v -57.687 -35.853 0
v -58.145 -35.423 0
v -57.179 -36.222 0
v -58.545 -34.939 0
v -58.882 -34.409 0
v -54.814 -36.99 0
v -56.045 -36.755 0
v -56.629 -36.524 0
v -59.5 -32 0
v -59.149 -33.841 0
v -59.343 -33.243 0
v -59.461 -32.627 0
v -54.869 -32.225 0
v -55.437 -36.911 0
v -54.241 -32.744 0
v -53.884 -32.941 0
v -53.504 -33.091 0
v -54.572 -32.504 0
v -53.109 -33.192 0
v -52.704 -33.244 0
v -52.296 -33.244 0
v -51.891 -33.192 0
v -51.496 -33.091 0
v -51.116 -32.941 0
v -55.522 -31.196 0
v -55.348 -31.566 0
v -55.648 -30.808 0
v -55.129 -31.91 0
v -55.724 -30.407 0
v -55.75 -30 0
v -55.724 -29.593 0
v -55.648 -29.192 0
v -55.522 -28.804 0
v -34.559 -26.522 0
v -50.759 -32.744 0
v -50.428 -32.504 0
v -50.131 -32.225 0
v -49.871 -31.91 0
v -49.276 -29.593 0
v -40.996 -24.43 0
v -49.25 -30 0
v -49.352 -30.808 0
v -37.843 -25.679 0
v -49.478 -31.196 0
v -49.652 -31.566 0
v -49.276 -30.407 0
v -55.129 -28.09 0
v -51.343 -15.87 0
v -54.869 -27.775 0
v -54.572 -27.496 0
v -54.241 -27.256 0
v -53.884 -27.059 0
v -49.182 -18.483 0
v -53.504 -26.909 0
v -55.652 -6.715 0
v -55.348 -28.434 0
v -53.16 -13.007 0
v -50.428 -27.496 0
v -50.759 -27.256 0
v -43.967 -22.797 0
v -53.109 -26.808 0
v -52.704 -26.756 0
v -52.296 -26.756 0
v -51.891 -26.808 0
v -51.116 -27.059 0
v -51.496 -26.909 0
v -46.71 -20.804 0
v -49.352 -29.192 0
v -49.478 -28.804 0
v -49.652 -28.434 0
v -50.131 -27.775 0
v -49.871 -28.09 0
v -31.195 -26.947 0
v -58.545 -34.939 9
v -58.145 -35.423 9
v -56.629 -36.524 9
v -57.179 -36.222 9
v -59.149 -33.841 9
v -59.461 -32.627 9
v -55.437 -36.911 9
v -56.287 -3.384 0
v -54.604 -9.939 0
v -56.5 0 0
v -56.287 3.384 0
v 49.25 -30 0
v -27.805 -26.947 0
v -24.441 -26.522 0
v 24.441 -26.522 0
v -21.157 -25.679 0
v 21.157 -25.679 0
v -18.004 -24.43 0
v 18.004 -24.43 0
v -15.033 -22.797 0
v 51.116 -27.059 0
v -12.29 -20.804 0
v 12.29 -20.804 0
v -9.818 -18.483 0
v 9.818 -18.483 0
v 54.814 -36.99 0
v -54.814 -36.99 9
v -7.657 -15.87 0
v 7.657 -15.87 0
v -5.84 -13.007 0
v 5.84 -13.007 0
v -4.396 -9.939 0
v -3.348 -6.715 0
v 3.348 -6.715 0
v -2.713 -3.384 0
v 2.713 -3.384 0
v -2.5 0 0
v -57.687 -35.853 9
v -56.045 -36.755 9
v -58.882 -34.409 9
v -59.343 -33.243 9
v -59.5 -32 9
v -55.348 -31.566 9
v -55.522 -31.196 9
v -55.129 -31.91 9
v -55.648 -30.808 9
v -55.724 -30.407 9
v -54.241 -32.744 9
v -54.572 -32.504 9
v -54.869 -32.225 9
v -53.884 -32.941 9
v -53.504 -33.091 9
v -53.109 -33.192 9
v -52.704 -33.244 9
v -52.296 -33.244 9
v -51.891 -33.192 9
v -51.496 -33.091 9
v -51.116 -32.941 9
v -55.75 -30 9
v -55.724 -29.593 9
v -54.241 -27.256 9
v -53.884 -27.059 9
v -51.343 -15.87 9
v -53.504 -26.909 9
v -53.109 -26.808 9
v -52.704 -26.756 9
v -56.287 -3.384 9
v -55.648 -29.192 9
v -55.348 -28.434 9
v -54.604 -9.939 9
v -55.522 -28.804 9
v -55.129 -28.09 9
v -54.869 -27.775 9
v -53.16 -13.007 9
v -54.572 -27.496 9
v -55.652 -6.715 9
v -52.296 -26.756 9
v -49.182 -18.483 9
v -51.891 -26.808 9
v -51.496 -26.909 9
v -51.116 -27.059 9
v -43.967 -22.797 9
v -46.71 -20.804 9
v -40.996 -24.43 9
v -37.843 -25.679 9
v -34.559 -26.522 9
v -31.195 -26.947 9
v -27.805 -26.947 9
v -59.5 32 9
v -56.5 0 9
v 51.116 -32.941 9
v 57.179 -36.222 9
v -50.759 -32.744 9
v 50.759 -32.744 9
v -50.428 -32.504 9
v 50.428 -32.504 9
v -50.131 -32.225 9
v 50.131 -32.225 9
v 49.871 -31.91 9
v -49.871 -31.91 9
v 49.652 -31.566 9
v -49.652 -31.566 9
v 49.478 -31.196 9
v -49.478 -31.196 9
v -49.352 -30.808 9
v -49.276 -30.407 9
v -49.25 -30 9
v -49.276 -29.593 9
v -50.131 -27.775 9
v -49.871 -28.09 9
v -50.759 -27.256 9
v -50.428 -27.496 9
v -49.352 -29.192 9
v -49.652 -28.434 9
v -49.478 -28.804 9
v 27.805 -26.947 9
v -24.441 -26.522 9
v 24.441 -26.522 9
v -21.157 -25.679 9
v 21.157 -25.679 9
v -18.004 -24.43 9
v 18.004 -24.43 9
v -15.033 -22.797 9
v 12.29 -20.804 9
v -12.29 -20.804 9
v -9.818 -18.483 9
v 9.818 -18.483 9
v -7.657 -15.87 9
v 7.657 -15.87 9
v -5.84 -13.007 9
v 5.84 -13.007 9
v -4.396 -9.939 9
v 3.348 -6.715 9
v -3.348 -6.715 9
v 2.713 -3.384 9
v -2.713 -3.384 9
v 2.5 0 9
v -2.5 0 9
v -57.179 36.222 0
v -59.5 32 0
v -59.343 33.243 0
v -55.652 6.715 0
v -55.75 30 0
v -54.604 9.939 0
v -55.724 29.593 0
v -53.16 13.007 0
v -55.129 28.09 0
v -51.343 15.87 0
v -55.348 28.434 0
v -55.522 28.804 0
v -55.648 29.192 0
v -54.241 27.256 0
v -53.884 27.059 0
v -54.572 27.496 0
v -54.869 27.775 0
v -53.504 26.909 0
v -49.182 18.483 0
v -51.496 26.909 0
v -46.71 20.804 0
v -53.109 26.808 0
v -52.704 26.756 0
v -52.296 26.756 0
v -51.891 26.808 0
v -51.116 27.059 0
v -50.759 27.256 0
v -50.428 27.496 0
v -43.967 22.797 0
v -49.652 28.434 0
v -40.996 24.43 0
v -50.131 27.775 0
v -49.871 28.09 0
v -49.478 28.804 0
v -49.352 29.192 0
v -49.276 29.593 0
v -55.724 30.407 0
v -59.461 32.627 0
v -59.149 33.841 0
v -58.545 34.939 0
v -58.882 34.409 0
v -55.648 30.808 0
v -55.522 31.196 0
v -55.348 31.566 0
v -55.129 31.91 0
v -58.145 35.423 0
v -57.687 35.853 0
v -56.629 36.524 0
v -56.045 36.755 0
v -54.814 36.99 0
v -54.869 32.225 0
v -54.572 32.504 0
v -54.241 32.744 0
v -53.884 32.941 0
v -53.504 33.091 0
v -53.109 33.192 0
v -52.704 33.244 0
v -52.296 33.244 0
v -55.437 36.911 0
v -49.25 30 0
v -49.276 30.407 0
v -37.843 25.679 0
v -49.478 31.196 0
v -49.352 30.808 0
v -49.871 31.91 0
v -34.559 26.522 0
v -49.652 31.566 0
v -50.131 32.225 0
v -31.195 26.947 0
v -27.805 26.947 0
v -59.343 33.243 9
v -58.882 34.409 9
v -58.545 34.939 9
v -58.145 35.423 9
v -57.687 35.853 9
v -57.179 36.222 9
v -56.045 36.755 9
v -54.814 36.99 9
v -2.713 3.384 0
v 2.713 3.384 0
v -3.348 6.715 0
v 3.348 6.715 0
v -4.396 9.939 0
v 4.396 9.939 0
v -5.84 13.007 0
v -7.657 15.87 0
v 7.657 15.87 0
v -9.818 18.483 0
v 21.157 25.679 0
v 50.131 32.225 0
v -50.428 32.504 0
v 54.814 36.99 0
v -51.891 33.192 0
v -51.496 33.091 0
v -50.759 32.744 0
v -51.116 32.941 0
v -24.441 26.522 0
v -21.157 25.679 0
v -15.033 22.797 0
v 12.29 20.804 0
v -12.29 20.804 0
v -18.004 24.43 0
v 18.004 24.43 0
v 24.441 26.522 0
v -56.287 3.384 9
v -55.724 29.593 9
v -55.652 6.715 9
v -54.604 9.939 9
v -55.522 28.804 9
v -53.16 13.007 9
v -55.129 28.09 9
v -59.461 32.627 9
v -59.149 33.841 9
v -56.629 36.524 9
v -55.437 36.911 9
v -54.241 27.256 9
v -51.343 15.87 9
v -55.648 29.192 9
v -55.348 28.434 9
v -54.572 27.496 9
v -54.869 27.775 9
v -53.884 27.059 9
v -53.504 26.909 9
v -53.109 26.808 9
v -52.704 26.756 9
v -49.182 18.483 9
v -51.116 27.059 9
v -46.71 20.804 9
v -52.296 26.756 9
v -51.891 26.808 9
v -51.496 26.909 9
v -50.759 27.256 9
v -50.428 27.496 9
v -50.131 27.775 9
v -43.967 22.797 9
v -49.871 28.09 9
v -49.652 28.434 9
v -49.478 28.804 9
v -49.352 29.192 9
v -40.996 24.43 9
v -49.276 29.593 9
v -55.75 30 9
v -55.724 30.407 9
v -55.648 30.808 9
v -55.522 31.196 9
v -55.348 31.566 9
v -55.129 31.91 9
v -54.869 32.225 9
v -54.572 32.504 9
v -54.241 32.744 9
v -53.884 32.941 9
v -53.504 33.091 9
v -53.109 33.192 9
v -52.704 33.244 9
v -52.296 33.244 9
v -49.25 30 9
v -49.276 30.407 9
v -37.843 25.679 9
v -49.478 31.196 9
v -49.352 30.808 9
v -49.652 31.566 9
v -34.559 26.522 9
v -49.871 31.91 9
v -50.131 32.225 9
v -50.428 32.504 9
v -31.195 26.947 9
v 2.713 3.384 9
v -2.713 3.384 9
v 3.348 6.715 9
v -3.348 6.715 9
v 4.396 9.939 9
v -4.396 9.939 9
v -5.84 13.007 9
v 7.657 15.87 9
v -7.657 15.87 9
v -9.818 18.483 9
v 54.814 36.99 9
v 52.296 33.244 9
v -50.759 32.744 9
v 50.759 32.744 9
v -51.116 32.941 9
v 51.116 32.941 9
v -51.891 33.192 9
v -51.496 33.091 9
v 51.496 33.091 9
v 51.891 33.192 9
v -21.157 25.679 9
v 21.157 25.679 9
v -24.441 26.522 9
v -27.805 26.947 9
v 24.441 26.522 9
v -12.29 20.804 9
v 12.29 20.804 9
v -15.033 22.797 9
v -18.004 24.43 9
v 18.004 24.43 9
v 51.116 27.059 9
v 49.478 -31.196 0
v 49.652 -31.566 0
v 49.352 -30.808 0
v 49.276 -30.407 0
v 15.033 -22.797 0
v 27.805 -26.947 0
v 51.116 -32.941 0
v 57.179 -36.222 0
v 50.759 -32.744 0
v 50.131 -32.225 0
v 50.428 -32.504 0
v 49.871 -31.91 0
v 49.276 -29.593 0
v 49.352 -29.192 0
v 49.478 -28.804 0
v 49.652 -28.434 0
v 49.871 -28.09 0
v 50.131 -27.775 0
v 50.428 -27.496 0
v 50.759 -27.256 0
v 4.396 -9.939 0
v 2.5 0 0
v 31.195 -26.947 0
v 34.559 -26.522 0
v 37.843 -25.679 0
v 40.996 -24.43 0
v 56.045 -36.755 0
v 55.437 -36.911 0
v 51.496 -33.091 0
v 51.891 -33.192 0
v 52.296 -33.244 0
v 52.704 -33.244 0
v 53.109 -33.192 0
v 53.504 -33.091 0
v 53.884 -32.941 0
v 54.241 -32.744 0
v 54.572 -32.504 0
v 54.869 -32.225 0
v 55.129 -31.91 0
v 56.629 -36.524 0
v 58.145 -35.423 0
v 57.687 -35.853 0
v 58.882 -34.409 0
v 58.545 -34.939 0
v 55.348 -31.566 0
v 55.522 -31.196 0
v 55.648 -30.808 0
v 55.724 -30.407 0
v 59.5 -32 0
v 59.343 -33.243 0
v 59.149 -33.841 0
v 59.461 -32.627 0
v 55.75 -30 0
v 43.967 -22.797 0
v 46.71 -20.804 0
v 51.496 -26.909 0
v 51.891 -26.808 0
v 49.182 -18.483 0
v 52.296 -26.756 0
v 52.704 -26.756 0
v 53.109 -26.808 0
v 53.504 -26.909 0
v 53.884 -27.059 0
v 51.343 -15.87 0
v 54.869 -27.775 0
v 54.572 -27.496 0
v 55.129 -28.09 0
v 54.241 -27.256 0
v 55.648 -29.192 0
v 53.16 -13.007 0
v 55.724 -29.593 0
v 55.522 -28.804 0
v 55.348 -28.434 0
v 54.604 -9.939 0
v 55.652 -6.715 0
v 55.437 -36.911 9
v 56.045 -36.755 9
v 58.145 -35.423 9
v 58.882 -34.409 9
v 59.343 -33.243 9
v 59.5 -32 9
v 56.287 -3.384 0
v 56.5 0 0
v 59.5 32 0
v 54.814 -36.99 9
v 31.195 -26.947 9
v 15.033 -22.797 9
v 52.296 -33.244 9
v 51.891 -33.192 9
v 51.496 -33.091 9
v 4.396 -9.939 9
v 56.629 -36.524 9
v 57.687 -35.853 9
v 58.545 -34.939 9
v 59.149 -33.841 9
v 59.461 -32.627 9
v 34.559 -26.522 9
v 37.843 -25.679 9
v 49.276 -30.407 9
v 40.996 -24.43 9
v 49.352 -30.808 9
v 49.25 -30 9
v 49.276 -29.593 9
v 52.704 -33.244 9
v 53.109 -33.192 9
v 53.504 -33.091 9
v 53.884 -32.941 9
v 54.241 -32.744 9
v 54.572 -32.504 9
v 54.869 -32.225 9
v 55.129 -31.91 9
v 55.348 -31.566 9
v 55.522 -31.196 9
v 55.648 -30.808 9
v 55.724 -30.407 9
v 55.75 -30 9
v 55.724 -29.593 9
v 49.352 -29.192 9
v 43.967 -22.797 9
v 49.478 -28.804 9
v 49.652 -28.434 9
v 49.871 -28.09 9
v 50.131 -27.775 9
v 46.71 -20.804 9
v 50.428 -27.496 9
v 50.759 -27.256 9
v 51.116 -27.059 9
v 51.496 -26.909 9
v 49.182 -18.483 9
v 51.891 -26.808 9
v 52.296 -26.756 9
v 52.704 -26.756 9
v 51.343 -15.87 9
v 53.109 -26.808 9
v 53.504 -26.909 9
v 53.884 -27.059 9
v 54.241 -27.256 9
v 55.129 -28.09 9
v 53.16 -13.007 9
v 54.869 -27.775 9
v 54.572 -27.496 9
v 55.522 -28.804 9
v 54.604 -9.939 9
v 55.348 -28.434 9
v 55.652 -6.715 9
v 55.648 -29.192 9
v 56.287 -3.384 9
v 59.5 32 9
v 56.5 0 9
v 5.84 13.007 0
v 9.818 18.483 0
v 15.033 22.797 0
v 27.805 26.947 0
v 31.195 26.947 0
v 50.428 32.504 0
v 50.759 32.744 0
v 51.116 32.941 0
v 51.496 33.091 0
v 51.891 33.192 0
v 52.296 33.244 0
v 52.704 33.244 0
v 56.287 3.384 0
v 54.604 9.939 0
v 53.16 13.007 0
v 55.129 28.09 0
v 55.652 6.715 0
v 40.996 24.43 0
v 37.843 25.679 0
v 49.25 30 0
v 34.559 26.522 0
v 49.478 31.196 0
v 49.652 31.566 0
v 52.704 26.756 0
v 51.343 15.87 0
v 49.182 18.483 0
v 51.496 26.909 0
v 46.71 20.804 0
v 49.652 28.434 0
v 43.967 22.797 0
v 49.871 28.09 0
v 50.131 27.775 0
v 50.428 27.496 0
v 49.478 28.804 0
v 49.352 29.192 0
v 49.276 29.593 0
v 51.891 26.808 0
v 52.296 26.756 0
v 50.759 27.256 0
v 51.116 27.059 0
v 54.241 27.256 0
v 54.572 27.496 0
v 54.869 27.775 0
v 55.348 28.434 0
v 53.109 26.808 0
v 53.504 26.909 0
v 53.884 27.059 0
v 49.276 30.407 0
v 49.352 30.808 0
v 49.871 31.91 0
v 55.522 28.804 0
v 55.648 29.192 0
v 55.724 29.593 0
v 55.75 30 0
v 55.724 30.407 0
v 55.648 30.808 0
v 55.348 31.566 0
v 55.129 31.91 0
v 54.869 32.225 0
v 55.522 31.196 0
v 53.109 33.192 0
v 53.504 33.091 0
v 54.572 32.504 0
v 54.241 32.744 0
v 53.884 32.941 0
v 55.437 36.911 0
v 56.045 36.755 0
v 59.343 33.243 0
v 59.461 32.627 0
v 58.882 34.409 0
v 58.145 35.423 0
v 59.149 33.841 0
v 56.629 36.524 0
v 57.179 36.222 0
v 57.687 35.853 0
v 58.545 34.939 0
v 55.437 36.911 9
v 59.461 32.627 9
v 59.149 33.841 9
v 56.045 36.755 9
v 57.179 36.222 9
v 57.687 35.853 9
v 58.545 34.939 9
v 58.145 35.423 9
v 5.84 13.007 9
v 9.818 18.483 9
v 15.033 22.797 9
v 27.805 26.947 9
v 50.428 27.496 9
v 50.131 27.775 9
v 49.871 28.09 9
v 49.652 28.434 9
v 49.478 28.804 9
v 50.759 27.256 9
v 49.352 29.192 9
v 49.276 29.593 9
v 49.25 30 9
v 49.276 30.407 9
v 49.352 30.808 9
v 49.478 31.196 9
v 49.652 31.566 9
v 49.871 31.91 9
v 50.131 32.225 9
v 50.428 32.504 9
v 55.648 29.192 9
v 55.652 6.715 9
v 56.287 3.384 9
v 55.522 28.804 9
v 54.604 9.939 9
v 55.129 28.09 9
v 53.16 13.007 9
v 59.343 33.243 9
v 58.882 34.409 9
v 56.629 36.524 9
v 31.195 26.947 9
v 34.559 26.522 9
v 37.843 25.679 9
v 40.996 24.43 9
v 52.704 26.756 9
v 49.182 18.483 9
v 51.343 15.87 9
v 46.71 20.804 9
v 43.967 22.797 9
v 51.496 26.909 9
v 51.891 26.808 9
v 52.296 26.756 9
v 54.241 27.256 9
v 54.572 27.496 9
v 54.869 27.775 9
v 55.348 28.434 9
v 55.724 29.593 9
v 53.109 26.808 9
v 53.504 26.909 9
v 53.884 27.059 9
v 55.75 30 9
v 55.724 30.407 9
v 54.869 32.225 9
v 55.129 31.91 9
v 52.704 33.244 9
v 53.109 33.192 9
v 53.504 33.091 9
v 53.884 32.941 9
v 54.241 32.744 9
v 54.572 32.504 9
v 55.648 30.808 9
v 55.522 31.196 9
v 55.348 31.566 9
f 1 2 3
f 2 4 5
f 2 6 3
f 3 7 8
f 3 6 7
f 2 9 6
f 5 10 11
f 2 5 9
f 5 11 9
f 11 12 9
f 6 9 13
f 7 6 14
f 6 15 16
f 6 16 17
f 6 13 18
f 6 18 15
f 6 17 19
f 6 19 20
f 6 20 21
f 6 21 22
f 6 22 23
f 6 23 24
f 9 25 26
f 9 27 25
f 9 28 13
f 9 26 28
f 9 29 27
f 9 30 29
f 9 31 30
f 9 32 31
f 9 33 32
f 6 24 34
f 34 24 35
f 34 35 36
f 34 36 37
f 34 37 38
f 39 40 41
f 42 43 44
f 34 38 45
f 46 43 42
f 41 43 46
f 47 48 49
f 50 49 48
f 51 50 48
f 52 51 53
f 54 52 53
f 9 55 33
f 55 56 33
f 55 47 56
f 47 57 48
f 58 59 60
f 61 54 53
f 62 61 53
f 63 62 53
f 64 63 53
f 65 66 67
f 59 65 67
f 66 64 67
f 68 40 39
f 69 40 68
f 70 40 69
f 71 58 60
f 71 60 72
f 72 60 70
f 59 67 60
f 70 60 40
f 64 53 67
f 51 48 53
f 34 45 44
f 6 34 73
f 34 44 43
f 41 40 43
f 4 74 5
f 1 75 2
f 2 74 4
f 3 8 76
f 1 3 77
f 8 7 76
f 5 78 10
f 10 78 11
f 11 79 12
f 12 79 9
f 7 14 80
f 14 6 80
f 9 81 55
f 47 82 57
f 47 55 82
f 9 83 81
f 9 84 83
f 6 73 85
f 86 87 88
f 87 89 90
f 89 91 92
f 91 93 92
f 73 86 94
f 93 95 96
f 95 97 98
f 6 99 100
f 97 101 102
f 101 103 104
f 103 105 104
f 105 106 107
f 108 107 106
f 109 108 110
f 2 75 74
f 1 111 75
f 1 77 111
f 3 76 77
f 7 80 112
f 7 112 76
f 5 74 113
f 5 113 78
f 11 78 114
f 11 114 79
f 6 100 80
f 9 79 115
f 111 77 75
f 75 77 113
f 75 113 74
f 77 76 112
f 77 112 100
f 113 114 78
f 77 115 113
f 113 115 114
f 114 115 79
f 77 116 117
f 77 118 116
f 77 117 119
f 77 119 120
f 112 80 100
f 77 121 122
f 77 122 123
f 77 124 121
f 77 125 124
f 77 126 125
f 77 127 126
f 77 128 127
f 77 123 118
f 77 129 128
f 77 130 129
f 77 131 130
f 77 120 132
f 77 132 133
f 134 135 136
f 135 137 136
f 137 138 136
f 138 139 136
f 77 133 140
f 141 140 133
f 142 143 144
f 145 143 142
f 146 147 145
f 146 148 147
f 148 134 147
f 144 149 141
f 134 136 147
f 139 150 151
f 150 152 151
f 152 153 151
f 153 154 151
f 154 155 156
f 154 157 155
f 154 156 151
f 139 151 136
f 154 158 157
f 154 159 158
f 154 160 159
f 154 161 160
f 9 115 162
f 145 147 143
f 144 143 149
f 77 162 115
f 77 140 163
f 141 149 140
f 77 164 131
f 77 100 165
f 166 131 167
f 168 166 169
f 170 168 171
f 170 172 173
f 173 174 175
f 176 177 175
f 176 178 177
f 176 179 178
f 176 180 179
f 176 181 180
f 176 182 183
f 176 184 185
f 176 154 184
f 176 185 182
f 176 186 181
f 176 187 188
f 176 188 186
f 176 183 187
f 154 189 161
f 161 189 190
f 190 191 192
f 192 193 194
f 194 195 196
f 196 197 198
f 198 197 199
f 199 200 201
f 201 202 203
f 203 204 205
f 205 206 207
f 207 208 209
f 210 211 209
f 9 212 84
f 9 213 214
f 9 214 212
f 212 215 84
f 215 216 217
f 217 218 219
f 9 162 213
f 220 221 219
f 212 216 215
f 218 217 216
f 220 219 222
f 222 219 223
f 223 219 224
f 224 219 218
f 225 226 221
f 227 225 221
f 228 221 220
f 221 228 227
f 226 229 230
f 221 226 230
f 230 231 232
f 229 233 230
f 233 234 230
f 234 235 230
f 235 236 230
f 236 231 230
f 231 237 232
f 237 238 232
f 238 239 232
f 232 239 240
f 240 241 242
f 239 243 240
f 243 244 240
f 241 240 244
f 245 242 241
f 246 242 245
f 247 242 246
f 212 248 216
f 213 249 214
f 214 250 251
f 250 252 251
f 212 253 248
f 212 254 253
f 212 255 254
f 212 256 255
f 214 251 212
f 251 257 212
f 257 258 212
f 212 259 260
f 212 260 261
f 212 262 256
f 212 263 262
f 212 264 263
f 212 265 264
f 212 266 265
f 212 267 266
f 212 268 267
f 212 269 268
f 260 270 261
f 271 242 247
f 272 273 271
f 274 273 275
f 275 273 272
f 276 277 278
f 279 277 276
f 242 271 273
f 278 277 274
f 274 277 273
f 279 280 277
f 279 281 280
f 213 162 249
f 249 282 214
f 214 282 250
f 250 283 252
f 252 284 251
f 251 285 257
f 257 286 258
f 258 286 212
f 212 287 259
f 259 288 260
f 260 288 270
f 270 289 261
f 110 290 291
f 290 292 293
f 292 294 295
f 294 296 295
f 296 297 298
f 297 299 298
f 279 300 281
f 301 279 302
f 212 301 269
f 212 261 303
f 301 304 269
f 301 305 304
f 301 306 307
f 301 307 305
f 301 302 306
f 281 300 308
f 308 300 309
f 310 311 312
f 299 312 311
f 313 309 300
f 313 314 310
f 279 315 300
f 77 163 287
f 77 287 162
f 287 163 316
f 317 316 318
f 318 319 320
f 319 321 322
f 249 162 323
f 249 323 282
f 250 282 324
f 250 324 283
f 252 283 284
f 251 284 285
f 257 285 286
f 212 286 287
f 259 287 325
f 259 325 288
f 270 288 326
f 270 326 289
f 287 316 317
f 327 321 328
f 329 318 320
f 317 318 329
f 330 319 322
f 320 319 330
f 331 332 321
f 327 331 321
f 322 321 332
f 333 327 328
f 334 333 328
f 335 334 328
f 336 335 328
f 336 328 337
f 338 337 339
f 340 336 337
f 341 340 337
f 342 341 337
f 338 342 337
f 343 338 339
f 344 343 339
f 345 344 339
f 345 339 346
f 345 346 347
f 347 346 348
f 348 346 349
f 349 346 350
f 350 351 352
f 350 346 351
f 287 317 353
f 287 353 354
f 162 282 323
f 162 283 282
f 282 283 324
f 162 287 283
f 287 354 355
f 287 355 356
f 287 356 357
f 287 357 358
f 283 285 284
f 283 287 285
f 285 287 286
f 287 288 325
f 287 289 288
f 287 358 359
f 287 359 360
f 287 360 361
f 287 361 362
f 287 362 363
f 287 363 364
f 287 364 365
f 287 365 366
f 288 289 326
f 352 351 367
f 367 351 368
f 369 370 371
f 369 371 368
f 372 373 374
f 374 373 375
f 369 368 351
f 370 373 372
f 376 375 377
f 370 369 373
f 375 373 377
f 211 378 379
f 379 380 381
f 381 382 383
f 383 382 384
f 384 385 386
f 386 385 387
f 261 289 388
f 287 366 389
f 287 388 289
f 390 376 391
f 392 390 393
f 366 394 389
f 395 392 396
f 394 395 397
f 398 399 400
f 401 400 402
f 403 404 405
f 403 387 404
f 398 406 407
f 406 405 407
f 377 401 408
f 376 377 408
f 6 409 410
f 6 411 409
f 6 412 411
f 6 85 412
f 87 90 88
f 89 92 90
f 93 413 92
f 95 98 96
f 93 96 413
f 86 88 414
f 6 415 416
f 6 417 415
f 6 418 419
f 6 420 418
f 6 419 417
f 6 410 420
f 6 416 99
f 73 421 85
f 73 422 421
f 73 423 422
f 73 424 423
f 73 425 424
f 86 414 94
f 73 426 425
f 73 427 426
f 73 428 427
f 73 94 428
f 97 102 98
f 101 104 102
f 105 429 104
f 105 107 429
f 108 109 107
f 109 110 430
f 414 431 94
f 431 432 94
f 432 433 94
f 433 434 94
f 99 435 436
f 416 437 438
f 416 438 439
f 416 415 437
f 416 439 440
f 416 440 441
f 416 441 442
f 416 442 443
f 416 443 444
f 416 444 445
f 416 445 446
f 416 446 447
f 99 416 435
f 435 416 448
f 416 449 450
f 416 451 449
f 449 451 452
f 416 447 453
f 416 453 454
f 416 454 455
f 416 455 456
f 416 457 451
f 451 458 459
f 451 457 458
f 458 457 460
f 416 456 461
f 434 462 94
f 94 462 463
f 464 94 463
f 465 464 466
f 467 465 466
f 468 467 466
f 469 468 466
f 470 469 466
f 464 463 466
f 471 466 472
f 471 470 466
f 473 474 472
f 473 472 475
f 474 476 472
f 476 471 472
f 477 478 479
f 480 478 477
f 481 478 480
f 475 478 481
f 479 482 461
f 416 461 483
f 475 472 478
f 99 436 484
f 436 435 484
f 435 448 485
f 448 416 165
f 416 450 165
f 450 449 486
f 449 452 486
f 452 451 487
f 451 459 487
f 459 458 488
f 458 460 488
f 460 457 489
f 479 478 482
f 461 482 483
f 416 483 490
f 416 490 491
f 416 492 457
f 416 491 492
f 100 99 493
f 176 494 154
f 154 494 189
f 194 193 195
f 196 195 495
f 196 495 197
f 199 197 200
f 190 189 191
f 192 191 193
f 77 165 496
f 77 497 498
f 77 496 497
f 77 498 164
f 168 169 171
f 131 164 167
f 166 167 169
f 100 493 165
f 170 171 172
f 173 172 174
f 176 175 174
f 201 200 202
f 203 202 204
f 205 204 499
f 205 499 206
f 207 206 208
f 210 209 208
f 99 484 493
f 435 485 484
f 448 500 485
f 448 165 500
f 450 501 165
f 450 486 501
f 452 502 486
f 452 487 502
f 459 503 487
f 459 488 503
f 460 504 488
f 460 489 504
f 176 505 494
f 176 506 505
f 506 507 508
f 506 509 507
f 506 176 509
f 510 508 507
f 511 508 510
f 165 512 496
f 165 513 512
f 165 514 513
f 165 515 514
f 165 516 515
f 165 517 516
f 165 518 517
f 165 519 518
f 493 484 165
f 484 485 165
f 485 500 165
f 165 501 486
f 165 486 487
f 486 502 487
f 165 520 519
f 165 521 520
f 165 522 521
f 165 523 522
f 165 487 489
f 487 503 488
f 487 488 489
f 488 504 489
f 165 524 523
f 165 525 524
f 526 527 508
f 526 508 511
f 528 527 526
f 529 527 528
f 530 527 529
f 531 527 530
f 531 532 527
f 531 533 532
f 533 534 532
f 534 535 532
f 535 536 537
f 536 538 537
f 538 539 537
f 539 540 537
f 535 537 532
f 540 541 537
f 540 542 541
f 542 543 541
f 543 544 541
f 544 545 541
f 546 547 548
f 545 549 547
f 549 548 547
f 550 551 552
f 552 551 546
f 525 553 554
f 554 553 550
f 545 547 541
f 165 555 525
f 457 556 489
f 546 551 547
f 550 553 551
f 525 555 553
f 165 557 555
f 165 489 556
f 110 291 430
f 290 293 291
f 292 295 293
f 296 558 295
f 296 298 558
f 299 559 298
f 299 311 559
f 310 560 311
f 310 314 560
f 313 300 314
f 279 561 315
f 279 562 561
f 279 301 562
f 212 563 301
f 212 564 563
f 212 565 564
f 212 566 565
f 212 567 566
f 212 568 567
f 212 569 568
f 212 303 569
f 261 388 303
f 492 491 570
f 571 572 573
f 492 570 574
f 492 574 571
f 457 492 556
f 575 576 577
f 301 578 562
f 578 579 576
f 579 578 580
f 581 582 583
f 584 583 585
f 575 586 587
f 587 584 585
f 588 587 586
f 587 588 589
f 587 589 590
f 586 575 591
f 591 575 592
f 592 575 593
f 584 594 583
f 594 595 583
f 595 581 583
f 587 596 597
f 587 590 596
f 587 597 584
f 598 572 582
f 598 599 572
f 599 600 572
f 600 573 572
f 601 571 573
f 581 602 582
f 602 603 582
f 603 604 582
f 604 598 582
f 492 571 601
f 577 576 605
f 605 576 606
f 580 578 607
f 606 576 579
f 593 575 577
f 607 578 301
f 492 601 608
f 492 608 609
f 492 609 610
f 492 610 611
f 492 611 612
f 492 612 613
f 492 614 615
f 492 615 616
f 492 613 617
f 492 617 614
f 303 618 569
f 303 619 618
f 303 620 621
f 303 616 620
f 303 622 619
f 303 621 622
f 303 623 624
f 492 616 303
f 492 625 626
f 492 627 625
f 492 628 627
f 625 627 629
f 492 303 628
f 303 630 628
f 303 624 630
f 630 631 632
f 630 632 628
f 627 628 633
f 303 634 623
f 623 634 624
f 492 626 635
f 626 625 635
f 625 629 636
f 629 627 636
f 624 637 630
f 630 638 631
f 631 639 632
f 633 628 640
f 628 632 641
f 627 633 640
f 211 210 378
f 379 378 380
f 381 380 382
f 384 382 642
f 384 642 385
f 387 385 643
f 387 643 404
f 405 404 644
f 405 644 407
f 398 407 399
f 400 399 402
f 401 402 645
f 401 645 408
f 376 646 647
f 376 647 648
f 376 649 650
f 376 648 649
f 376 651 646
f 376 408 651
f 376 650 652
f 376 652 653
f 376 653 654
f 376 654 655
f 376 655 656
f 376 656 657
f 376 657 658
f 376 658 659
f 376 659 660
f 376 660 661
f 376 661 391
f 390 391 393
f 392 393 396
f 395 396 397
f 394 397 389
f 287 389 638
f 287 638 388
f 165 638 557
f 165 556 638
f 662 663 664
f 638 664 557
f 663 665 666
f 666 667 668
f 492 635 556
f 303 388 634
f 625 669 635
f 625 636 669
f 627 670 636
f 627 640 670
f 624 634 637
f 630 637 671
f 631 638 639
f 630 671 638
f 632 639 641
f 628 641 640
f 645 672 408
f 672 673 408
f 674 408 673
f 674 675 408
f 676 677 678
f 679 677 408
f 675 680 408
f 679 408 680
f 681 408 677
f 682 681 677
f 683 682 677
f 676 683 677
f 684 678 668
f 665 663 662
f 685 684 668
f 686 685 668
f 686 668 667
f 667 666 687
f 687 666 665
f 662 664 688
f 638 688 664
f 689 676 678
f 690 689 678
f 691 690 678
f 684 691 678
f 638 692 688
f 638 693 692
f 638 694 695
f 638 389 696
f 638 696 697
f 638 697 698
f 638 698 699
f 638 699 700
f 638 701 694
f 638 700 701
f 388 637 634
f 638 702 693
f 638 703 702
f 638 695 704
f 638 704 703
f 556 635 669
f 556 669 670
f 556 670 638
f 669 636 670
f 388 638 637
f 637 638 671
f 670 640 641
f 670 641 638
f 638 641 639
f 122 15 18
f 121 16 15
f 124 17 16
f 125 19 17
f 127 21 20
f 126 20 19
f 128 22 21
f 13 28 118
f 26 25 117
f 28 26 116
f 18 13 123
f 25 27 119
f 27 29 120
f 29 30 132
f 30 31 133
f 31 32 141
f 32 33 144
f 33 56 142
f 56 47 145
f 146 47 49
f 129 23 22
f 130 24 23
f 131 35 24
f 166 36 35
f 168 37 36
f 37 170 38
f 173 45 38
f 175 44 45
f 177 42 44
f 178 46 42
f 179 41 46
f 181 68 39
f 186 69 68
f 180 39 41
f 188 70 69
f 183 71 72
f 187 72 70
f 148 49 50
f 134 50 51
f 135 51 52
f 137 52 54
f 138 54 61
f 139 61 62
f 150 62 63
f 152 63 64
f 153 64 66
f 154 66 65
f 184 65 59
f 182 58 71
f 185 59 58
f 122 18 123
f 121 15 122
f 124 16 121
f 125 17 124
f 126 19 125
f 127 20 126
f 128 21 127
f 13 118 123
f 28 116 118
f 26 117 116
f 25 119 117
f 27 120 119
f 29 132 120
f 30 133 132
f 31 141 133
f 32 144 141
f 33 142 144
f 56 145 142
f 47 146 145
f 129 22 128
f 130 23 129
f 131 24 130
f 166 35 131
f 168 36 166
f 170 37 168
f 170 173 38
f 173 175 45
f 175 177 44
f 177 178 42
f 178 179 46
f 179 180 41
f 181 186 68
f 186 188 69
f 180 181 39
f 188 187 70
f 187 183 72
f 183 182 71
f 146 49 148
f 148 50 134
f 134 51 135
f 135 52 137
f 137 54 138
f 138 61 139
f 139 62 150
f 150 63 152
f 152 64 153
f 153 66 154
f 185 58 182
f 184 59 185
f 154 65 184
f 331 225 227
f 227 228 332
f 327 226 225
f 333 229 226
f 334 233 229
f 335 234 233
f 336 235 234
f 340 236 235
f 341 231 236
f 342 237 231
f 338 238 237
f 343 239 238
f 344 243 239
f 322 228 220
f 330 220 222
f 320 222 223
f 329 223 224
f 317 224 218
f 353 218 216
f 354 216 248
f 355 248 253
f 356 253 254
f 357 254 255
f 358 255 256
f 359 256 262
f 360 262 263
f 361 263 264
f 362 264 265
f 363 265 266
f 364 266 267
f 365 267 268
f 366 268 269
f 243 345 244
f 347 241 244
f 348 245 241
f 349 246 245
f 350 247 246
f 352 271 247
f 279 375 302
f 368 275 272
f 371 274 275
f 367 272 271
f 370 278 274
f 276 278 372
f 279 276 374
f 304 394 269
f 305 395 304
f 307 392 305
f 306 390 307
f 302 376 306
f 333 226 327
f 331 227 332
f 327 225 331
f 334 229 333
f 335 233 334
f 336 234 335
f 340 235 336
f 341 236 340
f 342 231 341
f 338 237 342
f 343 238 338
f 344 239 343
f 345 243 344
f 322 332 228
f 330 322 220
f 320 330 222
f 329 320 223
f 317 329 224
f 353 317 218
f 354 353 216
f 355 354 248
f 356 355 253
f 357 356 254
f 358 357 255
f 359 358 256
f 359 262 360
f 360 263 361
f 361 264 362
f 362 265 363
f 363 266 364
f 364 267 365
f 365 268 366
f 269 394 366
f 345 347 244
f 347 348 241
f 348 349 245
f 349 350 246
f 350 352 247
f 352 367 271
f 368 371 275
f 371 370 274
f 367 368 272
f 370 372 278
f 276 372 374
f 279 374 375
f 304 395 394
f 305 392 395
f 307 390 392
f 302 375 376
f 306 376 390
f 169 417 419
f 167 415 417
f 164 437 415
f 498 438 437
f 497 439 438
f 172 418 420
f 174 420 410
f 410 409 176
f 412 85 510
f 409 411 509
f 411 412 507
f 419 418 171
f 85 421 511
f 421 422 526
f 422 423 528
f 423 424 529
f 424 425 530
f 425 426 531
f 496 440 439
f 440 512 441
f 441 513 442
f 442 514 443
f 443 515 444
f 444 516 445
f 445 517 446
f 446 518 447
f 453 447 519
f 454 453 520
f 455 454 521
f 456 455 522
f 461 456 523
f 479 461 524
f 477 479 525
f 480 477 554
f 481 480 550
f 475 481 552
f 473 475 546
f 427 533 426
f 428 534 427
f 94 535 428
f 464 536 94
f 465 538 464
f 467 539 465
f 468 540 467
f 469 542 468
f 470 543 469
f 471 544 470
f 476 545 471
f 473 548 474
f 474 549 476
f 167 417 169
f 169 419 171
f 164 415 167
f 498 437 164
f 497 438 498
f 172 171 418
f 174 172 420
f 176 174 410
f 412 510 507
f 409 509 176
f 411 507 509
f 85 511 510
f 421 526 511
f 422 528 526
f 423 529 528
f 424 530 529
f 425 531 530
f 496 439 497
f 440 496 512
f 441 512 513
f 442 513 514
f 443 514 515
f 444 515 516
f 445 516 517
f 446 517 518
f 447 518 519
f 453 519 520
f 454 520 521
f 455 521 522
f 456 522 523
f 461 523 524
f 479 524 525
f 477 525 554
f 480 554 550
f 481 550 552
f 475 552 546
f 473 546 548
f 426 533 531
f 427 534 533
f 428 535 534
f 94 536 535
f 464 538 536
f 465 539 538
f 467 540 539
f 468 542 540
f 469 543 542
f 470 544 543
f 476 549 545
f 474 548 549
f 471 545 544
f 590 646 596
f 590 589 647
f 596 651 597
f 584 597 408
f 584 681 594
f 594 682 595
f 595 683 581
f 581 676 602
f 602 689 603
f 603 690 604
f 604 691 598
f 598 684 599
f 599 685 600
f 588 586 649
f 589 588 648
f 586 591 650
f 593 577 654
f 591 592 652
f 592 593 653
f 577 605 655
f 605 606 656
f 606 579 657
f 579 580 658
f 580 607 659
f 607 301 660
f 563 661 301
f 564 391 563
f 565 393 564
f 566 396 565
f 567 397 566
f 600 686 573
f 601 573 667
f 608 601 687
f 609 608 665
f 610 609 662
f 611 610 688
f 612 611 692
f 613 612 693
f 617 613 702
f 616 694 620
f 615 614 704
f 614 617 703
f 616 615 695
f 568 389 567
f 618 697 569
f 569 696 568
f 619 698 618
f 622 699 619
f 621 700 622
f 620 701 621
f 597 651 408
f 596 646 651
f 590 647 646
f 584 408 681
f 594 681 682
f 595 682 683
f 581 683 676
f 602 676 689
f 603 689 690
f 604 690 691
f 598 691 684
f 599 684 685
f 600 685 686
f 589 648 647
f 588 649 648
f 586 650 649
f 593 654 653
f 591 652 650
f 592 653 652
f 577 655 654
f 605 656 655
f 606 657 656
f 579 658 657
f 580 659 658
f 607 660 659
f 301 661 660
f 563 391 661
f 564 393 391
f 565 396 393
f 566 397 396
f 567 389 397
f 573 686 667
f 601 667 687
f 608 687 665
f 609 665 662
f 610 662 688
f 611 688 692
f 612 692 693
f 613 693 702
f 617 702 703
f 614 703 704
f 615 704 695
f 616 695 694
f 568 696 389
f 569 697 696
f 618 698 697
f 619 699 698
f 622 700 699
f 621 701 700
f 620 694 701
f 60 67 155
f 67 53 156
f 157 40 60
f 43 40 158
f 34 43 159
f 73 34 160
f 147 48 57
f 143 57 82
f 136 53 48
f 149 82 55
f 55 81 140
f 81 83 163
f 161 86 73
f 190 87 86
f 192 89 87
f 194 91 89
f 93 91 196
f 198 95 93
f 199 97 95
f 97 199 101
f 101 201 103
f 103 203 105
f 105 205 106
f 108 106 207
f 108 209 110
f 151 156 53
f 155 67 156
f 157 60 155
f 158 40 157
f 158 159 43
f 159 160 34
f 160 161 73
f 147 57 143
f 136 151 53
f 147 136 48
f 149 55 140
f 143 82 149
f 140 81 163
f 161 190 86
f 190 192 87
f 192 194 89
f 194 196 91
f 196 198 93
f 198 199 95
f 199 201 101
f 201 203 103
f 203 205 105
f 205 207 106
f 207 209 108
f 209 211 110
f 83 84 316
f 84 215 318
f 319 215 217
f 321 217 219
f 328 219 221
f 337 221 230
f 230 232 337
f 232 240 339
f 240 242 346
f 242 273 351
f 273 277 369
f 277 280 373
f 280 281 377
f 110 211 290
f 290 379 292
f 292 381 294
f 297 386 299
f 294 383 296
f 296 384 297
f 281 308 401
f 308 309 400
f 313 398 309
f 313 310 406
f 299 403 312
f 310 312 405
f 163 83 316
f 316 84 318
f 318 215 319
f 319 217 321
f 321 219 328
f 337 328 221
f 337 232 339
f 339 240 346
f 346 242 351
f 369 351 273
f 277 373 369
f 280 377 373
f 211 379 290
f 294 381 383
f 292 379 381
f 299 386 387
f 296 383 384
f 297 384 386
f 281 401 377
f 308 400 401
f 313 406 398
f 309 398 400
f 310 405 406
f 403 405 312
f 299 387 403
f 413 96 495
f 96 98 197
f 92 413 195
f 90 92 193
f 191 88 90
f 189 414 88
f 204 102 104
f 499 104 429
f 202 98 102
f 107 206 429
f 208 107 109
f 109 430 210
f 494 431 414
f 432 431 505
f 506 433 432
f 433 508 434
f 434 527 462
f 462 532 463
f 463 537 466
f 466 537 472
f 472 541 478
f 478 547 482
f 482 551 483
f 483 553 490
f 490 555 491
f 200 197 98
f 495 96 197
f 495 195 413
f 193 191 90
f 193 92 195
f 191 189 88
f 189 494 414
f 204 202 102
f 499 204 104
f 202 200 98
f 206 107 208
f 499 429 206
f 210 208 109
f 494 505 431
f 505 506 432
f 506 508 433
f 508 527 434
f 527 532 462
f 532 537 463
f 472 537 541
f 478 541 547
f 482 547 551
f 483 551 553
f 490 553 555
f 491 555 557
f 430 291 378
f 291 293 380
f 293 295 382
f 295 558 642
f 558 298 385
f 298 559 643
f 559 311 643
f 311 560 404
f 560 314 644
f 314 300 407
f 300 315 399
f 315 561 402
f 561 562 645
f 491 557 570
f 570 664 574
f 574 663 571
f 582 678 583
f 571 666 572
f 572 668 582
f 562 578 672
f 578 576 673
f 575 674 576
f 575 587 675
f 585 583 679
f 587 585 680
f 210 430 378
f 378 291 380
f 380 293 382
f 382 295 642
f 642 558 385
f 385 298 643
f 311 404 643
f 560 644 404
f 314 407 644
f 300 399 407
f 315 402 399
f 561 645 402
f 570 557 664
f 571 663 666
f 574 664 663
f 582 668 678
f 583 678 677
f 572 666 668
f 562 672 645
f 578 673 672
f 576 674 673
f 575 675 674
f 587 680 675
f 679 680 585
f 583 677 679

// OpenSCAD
$fn = 50;

difference() {
	union() {
		hull() {
			translate(v = [-54.5, 32.0, 0]) {
				cylinder(h = 9, r = 5);
			}
			translate(v = [54.5, 32.0, 0]) {
				cylinder(h = 9, r = 5);
			}
			translate(v = [-54.5, -32.0, 0]) {
				cylinder(h = 9, r = 5);
			}
			translate(v = [54.5, -32.0, 0]) {
				cylinder(h = 9, r = 5);
			}
		}
	}
	union() {
		translate(v = [-52.5, -30.0, -100.0]) {
			cylinder(h = 200, r = 3.25);
		}
		translate(v = [-52.5, 30.0, -100.0]) {
			cylinder(h = 200, r = 3.25);
		}
		translate(v = [52.5, -30.0, -100.0]) {
			cylinder(h = 200, r = 3.25);
		}
		translate(v = [52.5, 30.0, -100.0]) {
			cylinder(h = 200, r = 3.25);
		}
		translate(v = [-52.5, -30.0, -100.0]) {
			cylinder(h = 200, r = 1.8);
		}
		translate(v = [-52.5, 30.0, -100.0]) {
			cylinder(h = 200, r = 1.8);
		}
		translate(v = [52.5, -30.0, -100.0]) {
			cylinder(h = 200, r = 1.8);
		}
		translate(v = [52.5, 30.0, -100.0]) {
			cylinder(h = 200, r = 1.8);
		}
		translate(v = [-29.5, 0, 0.0]) {
			cylinder(h = 9, r = 27.0);
		}
		translate(v = [29.5, 0, 0.0]) {
			cylinder(h = 9, r = 27.0);
		}
	}
}
